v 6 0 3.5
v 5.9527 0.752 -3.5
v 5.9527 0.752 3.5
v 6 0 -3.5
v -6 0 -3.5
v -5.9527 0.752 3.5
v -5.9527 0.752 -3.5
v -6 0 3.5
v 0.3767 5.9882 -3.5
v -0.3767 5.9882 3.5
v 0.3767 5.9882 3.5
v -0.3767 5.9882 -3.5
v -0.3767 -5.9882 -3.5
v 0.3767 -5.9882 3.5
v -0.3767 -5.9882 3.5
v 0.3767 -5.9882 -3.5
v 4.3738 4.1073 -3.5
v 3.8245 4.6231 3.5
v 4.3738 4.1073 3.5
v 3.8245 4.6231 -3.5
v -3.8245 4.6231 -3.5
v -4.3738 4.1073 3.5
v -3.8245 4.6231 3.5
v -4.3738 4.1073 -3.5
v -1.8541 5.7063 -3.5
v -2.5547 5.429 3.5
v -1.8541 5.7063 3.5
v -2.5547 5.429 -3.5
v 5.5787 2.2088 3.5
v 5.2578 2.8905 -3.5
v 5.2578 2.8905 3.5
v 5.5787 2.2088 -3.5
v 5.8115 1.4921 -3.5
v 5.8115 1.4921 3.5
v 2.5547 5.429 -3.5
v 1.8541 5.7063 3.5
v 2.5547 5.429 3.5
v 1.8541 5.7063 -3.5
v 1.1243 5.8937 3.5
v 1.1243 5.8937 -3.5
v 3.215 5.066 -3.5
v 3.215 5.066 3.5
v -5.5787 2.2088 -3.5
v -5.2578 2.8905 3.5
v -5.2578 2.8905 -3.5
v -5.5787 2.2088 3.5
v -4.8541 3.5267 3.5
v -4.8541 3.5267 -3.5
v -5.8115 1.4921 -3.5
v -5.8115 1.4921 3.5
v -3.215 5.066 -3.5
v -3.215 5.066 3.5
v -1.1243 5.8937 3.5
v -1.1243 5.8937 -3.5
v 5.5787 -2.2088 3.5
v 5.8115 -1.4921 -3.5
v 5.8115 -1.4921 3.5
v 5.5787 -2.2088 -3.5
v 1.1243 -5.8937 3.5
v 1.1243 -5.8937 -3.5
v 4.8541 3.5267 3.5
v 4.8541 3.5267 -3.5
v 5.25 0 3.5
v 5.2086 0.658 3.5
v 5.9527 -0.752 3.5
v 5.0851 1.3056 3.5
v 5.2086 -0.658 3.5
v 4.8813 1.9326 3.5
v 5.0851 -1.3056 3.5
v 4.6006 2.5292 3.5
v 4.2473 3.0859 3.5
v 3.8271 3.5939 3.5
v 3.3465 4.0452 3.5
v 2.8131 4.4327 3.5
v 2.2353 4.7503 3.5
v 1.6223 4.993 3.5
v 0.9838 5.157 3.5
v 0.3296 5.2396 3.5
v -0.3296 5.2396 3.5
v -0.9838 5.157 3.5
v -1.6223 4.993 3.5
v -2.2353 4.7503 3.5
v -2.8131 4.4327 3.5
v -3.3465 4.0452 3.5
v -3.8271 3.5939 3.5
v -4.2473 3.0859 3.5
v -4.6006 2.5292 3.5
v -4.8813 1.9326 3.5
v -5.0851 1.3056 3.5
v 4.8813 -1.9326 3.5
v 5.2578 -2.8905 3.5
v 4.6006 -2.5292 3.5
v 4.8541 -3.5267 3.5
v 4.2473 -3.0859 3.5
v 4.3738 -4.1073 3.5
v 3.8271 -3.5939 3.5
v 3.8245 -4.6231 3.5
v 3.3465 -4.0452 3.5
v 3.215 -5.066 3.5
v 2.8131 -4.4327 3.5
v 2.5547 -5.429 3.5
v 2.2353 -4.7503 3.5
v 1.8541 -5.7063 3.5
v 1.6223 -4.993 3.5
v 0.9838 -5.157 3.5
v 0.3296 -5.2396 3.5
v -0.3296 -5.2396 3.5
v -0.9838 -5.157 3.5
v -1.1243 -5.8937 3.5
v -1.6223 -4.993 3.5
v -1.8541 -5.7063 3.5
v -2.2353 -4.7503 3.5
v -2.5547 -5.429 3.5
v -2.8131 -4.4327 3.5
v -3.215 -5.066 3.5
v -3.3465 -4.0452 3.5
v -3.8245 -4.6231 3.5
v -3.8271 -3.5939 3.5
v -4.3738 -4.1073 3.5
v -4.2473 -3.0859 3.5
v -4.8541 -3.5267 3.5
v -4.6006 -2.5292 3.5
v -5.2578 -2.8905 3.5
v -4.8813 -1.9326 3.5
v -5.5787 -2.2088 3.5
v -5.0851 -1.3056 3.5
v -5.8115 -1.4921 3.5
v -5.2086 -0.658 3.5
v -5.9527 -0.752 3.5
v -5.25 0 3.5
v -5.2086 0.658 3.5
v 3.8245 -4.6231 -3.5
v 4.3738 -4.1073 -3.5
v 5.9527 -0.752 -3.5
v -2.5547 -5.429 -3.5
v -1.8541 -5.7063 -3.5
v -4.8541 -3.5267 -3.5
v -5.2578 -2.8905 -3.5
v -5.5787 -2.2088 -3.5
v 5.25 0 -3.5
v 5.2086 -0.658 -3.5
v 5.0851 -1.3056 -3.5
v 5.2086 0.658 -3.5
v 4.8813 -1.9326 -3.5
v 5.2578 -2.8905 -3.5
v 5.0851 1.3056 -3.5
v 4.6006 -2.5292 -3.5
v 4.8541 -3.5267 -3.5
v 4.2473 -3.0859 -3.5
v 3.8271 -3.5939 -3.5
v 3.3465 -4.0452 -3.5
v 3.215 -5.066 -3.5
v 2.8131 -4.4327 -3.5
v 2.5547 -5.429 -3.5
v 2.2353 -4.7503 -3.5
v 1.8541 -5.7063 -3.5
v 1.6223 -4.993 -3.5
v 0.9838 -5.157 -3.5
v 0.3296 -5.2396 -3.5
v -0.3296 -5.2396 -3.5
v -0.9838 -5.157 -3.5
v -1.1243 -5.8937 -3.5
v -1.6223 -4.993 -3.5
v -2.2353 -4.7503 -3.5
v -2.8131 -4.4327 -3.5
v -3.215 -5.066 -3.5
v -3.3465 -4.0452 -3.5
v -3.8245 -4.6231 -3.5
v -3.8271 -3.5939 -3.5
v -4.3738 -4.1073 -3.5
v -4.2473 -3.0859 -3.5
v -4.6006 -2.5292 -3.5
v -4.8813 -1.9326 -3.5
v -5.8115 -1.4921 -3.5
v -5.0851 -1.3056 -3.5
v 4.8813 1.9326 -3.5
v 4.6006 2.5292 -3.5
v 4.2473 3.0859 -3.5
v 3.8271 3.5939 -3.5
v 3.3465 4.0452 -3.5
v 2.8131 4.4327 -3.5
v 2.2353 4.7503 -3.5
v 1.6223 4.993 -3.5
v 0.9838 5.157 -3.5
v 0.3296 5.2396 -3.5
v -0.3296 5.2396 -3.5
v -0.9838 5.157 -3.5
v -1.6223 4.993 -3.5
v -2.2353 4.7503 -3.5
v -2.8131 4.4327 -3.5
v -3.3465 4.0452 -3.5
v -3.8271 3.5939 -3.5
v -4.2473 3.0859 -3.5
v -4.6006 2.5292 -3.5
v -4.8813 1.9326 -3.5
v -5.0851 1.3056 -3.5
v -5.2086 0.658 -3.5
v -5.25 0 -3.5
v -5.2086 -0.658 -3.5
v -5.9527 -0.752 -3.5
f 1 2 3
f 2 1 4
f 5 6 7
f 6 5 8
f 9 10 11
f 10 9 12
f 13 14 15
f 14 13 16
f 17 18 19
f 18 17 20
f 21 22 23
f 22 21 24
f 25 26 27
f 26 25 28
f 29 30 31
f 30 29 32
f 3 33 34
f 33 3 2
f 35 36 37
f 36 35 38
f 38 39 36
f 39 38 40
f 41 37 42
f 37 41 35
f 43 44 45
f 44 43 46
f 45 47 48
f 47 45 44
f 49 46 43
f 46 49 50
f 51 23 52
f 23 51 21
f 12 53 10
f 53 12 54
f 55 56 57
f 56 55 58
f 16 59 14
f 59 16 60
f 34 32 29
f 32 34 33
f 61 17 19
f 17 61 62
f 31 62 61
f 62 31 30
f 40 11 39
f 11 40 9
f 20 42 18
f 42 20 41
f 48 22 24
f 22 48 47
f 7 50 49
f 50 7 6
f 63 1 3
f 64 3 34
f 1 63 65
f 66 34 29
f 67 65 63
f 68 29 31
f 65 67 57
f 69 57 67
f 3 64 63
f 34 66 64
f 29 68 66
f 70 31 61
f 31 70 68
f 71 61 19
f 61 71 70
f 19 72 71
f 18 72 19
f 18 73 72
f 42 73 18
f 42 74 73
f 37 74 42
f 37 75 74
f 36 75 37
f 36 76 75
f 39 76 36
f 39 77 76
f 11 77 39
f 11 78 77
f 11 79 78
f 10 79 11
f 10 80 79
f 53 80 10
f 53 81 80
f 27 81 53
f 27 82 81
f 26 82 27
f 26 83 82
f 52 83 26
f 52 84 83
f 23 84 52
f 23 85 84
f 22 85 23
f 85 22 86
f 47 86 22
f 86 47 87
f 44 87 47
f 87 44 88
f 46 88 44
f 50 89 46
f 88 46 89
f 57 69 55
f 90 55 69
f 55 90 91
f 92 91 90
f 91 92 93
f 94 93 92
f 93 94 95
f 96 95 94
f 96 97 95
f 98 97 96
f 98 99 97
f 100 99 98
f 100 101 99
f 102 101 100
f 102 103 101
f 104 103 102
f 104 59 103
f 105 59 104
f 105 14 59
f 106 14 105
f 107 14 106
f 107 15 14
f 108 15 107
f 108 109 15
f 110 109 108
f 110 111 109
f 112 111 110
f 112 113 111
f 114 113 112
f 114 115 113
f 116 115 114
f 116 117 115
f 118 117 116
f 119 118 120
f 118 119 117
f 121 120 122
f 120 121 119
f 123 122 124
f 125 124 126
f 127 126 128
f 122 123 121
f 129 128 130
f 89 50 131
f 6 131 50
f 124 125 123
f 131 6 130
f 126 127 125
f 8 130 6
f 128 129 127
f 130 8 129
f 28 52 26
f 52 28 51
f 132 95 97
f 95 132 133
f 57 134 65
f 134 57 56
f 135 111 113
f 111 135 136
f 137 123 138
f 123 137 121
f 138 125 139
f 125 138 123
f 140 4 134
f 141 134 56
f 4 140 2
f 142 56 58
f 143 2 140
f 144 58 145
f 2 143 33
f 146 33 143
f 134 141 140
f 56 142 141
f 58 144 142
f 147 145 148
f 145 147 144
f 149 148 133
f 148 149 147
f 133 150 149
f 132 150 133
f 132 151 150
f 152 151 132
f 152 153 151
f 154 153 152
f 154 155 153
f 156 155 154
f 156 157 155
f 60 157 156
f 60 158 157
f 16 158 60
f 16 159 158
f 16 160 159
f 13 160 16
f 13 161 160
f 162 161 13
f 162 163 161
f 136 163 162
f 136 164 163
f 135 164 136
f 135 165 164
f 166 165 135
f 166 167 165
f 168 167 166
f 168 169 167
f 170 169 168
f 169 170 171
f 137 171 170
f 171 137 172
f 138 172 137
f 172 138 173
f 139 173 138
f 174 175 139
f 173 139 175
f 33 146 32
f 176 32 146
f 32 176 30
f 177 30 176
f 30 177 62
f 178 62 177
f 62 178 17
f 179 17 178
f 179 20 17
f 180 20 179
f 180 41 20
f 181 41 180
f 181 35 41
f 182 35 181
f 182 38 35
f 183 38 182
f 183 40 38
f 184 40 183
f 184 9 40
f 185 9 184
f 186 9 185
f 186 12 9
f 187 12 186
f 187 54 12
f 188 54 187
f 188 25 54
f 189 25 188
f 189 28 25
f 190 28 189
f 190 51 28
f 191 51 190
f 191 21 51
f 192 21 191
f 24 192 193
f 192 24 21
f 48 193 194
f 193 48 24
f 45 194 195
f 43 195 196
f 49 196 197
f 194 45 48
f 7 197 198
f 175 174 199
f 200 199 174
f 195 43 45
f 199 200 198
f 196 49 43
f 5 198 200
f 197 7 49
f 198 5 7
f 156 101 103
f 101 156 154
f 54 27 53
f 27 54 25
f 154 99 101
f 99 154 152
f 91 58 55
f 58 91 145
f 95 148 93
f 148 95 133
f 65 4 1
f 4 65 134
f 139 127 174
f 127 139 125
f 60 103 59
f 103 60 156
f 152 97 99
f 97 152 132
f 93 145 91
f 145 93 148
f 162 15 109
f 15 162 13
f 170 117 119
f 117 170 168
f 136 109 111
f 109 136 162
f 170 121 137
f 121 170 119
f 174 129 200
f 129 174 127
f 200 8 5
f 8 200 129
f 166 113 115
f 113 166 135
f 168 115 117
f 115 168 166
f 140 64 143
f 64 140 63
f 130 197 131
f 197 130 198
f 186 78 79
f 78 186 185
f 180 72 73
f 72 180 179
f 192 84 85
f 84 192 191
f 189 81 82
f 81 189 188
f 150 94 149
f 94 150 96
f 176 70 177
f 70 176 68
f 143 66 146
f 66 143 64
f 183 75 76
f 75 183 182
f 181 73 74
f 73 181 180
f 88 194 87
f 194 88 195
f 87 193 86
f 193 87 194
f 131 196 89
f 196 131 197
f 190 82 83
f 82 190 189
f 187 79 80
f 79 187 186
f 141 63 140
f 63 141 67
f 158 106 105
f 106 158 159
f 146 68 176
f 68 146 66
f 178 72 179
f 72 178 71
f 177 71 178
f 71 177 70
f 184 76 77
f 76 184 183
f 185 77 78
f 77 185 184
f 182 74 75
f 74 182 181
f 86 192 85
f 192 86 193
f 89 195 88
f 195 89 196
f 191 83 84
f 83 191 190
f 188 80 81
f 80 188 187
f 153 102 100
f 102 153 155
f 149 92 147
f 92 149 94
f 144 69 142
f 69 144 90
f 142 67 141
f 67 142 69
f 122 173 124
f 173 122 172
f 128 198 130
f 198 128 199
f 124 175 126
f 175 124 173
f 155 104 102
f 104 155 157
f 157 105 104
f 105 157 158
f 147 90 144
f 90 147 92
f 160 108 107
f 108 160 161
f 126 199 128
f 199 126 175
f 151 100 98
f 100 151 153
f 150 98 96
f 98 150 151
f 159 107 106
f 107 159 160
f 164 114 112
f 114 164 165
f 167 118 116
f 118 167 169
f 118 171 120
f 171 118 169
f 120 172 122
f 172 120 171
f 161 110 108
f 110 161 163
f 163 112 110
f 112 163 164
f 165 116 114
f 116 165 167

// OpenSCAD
$fn = 50;


difference() {
	union() {
		translate(v = [0, 0, -3.5000000000]) {
			cylinder(h = 7, r = 6.0000000000);
		}
	}
	union() {
		translate(v = [0, 0, -100.0000000000]) {
			cylinder(h = 200, r = 5.2500000000);
		}
	}
}
